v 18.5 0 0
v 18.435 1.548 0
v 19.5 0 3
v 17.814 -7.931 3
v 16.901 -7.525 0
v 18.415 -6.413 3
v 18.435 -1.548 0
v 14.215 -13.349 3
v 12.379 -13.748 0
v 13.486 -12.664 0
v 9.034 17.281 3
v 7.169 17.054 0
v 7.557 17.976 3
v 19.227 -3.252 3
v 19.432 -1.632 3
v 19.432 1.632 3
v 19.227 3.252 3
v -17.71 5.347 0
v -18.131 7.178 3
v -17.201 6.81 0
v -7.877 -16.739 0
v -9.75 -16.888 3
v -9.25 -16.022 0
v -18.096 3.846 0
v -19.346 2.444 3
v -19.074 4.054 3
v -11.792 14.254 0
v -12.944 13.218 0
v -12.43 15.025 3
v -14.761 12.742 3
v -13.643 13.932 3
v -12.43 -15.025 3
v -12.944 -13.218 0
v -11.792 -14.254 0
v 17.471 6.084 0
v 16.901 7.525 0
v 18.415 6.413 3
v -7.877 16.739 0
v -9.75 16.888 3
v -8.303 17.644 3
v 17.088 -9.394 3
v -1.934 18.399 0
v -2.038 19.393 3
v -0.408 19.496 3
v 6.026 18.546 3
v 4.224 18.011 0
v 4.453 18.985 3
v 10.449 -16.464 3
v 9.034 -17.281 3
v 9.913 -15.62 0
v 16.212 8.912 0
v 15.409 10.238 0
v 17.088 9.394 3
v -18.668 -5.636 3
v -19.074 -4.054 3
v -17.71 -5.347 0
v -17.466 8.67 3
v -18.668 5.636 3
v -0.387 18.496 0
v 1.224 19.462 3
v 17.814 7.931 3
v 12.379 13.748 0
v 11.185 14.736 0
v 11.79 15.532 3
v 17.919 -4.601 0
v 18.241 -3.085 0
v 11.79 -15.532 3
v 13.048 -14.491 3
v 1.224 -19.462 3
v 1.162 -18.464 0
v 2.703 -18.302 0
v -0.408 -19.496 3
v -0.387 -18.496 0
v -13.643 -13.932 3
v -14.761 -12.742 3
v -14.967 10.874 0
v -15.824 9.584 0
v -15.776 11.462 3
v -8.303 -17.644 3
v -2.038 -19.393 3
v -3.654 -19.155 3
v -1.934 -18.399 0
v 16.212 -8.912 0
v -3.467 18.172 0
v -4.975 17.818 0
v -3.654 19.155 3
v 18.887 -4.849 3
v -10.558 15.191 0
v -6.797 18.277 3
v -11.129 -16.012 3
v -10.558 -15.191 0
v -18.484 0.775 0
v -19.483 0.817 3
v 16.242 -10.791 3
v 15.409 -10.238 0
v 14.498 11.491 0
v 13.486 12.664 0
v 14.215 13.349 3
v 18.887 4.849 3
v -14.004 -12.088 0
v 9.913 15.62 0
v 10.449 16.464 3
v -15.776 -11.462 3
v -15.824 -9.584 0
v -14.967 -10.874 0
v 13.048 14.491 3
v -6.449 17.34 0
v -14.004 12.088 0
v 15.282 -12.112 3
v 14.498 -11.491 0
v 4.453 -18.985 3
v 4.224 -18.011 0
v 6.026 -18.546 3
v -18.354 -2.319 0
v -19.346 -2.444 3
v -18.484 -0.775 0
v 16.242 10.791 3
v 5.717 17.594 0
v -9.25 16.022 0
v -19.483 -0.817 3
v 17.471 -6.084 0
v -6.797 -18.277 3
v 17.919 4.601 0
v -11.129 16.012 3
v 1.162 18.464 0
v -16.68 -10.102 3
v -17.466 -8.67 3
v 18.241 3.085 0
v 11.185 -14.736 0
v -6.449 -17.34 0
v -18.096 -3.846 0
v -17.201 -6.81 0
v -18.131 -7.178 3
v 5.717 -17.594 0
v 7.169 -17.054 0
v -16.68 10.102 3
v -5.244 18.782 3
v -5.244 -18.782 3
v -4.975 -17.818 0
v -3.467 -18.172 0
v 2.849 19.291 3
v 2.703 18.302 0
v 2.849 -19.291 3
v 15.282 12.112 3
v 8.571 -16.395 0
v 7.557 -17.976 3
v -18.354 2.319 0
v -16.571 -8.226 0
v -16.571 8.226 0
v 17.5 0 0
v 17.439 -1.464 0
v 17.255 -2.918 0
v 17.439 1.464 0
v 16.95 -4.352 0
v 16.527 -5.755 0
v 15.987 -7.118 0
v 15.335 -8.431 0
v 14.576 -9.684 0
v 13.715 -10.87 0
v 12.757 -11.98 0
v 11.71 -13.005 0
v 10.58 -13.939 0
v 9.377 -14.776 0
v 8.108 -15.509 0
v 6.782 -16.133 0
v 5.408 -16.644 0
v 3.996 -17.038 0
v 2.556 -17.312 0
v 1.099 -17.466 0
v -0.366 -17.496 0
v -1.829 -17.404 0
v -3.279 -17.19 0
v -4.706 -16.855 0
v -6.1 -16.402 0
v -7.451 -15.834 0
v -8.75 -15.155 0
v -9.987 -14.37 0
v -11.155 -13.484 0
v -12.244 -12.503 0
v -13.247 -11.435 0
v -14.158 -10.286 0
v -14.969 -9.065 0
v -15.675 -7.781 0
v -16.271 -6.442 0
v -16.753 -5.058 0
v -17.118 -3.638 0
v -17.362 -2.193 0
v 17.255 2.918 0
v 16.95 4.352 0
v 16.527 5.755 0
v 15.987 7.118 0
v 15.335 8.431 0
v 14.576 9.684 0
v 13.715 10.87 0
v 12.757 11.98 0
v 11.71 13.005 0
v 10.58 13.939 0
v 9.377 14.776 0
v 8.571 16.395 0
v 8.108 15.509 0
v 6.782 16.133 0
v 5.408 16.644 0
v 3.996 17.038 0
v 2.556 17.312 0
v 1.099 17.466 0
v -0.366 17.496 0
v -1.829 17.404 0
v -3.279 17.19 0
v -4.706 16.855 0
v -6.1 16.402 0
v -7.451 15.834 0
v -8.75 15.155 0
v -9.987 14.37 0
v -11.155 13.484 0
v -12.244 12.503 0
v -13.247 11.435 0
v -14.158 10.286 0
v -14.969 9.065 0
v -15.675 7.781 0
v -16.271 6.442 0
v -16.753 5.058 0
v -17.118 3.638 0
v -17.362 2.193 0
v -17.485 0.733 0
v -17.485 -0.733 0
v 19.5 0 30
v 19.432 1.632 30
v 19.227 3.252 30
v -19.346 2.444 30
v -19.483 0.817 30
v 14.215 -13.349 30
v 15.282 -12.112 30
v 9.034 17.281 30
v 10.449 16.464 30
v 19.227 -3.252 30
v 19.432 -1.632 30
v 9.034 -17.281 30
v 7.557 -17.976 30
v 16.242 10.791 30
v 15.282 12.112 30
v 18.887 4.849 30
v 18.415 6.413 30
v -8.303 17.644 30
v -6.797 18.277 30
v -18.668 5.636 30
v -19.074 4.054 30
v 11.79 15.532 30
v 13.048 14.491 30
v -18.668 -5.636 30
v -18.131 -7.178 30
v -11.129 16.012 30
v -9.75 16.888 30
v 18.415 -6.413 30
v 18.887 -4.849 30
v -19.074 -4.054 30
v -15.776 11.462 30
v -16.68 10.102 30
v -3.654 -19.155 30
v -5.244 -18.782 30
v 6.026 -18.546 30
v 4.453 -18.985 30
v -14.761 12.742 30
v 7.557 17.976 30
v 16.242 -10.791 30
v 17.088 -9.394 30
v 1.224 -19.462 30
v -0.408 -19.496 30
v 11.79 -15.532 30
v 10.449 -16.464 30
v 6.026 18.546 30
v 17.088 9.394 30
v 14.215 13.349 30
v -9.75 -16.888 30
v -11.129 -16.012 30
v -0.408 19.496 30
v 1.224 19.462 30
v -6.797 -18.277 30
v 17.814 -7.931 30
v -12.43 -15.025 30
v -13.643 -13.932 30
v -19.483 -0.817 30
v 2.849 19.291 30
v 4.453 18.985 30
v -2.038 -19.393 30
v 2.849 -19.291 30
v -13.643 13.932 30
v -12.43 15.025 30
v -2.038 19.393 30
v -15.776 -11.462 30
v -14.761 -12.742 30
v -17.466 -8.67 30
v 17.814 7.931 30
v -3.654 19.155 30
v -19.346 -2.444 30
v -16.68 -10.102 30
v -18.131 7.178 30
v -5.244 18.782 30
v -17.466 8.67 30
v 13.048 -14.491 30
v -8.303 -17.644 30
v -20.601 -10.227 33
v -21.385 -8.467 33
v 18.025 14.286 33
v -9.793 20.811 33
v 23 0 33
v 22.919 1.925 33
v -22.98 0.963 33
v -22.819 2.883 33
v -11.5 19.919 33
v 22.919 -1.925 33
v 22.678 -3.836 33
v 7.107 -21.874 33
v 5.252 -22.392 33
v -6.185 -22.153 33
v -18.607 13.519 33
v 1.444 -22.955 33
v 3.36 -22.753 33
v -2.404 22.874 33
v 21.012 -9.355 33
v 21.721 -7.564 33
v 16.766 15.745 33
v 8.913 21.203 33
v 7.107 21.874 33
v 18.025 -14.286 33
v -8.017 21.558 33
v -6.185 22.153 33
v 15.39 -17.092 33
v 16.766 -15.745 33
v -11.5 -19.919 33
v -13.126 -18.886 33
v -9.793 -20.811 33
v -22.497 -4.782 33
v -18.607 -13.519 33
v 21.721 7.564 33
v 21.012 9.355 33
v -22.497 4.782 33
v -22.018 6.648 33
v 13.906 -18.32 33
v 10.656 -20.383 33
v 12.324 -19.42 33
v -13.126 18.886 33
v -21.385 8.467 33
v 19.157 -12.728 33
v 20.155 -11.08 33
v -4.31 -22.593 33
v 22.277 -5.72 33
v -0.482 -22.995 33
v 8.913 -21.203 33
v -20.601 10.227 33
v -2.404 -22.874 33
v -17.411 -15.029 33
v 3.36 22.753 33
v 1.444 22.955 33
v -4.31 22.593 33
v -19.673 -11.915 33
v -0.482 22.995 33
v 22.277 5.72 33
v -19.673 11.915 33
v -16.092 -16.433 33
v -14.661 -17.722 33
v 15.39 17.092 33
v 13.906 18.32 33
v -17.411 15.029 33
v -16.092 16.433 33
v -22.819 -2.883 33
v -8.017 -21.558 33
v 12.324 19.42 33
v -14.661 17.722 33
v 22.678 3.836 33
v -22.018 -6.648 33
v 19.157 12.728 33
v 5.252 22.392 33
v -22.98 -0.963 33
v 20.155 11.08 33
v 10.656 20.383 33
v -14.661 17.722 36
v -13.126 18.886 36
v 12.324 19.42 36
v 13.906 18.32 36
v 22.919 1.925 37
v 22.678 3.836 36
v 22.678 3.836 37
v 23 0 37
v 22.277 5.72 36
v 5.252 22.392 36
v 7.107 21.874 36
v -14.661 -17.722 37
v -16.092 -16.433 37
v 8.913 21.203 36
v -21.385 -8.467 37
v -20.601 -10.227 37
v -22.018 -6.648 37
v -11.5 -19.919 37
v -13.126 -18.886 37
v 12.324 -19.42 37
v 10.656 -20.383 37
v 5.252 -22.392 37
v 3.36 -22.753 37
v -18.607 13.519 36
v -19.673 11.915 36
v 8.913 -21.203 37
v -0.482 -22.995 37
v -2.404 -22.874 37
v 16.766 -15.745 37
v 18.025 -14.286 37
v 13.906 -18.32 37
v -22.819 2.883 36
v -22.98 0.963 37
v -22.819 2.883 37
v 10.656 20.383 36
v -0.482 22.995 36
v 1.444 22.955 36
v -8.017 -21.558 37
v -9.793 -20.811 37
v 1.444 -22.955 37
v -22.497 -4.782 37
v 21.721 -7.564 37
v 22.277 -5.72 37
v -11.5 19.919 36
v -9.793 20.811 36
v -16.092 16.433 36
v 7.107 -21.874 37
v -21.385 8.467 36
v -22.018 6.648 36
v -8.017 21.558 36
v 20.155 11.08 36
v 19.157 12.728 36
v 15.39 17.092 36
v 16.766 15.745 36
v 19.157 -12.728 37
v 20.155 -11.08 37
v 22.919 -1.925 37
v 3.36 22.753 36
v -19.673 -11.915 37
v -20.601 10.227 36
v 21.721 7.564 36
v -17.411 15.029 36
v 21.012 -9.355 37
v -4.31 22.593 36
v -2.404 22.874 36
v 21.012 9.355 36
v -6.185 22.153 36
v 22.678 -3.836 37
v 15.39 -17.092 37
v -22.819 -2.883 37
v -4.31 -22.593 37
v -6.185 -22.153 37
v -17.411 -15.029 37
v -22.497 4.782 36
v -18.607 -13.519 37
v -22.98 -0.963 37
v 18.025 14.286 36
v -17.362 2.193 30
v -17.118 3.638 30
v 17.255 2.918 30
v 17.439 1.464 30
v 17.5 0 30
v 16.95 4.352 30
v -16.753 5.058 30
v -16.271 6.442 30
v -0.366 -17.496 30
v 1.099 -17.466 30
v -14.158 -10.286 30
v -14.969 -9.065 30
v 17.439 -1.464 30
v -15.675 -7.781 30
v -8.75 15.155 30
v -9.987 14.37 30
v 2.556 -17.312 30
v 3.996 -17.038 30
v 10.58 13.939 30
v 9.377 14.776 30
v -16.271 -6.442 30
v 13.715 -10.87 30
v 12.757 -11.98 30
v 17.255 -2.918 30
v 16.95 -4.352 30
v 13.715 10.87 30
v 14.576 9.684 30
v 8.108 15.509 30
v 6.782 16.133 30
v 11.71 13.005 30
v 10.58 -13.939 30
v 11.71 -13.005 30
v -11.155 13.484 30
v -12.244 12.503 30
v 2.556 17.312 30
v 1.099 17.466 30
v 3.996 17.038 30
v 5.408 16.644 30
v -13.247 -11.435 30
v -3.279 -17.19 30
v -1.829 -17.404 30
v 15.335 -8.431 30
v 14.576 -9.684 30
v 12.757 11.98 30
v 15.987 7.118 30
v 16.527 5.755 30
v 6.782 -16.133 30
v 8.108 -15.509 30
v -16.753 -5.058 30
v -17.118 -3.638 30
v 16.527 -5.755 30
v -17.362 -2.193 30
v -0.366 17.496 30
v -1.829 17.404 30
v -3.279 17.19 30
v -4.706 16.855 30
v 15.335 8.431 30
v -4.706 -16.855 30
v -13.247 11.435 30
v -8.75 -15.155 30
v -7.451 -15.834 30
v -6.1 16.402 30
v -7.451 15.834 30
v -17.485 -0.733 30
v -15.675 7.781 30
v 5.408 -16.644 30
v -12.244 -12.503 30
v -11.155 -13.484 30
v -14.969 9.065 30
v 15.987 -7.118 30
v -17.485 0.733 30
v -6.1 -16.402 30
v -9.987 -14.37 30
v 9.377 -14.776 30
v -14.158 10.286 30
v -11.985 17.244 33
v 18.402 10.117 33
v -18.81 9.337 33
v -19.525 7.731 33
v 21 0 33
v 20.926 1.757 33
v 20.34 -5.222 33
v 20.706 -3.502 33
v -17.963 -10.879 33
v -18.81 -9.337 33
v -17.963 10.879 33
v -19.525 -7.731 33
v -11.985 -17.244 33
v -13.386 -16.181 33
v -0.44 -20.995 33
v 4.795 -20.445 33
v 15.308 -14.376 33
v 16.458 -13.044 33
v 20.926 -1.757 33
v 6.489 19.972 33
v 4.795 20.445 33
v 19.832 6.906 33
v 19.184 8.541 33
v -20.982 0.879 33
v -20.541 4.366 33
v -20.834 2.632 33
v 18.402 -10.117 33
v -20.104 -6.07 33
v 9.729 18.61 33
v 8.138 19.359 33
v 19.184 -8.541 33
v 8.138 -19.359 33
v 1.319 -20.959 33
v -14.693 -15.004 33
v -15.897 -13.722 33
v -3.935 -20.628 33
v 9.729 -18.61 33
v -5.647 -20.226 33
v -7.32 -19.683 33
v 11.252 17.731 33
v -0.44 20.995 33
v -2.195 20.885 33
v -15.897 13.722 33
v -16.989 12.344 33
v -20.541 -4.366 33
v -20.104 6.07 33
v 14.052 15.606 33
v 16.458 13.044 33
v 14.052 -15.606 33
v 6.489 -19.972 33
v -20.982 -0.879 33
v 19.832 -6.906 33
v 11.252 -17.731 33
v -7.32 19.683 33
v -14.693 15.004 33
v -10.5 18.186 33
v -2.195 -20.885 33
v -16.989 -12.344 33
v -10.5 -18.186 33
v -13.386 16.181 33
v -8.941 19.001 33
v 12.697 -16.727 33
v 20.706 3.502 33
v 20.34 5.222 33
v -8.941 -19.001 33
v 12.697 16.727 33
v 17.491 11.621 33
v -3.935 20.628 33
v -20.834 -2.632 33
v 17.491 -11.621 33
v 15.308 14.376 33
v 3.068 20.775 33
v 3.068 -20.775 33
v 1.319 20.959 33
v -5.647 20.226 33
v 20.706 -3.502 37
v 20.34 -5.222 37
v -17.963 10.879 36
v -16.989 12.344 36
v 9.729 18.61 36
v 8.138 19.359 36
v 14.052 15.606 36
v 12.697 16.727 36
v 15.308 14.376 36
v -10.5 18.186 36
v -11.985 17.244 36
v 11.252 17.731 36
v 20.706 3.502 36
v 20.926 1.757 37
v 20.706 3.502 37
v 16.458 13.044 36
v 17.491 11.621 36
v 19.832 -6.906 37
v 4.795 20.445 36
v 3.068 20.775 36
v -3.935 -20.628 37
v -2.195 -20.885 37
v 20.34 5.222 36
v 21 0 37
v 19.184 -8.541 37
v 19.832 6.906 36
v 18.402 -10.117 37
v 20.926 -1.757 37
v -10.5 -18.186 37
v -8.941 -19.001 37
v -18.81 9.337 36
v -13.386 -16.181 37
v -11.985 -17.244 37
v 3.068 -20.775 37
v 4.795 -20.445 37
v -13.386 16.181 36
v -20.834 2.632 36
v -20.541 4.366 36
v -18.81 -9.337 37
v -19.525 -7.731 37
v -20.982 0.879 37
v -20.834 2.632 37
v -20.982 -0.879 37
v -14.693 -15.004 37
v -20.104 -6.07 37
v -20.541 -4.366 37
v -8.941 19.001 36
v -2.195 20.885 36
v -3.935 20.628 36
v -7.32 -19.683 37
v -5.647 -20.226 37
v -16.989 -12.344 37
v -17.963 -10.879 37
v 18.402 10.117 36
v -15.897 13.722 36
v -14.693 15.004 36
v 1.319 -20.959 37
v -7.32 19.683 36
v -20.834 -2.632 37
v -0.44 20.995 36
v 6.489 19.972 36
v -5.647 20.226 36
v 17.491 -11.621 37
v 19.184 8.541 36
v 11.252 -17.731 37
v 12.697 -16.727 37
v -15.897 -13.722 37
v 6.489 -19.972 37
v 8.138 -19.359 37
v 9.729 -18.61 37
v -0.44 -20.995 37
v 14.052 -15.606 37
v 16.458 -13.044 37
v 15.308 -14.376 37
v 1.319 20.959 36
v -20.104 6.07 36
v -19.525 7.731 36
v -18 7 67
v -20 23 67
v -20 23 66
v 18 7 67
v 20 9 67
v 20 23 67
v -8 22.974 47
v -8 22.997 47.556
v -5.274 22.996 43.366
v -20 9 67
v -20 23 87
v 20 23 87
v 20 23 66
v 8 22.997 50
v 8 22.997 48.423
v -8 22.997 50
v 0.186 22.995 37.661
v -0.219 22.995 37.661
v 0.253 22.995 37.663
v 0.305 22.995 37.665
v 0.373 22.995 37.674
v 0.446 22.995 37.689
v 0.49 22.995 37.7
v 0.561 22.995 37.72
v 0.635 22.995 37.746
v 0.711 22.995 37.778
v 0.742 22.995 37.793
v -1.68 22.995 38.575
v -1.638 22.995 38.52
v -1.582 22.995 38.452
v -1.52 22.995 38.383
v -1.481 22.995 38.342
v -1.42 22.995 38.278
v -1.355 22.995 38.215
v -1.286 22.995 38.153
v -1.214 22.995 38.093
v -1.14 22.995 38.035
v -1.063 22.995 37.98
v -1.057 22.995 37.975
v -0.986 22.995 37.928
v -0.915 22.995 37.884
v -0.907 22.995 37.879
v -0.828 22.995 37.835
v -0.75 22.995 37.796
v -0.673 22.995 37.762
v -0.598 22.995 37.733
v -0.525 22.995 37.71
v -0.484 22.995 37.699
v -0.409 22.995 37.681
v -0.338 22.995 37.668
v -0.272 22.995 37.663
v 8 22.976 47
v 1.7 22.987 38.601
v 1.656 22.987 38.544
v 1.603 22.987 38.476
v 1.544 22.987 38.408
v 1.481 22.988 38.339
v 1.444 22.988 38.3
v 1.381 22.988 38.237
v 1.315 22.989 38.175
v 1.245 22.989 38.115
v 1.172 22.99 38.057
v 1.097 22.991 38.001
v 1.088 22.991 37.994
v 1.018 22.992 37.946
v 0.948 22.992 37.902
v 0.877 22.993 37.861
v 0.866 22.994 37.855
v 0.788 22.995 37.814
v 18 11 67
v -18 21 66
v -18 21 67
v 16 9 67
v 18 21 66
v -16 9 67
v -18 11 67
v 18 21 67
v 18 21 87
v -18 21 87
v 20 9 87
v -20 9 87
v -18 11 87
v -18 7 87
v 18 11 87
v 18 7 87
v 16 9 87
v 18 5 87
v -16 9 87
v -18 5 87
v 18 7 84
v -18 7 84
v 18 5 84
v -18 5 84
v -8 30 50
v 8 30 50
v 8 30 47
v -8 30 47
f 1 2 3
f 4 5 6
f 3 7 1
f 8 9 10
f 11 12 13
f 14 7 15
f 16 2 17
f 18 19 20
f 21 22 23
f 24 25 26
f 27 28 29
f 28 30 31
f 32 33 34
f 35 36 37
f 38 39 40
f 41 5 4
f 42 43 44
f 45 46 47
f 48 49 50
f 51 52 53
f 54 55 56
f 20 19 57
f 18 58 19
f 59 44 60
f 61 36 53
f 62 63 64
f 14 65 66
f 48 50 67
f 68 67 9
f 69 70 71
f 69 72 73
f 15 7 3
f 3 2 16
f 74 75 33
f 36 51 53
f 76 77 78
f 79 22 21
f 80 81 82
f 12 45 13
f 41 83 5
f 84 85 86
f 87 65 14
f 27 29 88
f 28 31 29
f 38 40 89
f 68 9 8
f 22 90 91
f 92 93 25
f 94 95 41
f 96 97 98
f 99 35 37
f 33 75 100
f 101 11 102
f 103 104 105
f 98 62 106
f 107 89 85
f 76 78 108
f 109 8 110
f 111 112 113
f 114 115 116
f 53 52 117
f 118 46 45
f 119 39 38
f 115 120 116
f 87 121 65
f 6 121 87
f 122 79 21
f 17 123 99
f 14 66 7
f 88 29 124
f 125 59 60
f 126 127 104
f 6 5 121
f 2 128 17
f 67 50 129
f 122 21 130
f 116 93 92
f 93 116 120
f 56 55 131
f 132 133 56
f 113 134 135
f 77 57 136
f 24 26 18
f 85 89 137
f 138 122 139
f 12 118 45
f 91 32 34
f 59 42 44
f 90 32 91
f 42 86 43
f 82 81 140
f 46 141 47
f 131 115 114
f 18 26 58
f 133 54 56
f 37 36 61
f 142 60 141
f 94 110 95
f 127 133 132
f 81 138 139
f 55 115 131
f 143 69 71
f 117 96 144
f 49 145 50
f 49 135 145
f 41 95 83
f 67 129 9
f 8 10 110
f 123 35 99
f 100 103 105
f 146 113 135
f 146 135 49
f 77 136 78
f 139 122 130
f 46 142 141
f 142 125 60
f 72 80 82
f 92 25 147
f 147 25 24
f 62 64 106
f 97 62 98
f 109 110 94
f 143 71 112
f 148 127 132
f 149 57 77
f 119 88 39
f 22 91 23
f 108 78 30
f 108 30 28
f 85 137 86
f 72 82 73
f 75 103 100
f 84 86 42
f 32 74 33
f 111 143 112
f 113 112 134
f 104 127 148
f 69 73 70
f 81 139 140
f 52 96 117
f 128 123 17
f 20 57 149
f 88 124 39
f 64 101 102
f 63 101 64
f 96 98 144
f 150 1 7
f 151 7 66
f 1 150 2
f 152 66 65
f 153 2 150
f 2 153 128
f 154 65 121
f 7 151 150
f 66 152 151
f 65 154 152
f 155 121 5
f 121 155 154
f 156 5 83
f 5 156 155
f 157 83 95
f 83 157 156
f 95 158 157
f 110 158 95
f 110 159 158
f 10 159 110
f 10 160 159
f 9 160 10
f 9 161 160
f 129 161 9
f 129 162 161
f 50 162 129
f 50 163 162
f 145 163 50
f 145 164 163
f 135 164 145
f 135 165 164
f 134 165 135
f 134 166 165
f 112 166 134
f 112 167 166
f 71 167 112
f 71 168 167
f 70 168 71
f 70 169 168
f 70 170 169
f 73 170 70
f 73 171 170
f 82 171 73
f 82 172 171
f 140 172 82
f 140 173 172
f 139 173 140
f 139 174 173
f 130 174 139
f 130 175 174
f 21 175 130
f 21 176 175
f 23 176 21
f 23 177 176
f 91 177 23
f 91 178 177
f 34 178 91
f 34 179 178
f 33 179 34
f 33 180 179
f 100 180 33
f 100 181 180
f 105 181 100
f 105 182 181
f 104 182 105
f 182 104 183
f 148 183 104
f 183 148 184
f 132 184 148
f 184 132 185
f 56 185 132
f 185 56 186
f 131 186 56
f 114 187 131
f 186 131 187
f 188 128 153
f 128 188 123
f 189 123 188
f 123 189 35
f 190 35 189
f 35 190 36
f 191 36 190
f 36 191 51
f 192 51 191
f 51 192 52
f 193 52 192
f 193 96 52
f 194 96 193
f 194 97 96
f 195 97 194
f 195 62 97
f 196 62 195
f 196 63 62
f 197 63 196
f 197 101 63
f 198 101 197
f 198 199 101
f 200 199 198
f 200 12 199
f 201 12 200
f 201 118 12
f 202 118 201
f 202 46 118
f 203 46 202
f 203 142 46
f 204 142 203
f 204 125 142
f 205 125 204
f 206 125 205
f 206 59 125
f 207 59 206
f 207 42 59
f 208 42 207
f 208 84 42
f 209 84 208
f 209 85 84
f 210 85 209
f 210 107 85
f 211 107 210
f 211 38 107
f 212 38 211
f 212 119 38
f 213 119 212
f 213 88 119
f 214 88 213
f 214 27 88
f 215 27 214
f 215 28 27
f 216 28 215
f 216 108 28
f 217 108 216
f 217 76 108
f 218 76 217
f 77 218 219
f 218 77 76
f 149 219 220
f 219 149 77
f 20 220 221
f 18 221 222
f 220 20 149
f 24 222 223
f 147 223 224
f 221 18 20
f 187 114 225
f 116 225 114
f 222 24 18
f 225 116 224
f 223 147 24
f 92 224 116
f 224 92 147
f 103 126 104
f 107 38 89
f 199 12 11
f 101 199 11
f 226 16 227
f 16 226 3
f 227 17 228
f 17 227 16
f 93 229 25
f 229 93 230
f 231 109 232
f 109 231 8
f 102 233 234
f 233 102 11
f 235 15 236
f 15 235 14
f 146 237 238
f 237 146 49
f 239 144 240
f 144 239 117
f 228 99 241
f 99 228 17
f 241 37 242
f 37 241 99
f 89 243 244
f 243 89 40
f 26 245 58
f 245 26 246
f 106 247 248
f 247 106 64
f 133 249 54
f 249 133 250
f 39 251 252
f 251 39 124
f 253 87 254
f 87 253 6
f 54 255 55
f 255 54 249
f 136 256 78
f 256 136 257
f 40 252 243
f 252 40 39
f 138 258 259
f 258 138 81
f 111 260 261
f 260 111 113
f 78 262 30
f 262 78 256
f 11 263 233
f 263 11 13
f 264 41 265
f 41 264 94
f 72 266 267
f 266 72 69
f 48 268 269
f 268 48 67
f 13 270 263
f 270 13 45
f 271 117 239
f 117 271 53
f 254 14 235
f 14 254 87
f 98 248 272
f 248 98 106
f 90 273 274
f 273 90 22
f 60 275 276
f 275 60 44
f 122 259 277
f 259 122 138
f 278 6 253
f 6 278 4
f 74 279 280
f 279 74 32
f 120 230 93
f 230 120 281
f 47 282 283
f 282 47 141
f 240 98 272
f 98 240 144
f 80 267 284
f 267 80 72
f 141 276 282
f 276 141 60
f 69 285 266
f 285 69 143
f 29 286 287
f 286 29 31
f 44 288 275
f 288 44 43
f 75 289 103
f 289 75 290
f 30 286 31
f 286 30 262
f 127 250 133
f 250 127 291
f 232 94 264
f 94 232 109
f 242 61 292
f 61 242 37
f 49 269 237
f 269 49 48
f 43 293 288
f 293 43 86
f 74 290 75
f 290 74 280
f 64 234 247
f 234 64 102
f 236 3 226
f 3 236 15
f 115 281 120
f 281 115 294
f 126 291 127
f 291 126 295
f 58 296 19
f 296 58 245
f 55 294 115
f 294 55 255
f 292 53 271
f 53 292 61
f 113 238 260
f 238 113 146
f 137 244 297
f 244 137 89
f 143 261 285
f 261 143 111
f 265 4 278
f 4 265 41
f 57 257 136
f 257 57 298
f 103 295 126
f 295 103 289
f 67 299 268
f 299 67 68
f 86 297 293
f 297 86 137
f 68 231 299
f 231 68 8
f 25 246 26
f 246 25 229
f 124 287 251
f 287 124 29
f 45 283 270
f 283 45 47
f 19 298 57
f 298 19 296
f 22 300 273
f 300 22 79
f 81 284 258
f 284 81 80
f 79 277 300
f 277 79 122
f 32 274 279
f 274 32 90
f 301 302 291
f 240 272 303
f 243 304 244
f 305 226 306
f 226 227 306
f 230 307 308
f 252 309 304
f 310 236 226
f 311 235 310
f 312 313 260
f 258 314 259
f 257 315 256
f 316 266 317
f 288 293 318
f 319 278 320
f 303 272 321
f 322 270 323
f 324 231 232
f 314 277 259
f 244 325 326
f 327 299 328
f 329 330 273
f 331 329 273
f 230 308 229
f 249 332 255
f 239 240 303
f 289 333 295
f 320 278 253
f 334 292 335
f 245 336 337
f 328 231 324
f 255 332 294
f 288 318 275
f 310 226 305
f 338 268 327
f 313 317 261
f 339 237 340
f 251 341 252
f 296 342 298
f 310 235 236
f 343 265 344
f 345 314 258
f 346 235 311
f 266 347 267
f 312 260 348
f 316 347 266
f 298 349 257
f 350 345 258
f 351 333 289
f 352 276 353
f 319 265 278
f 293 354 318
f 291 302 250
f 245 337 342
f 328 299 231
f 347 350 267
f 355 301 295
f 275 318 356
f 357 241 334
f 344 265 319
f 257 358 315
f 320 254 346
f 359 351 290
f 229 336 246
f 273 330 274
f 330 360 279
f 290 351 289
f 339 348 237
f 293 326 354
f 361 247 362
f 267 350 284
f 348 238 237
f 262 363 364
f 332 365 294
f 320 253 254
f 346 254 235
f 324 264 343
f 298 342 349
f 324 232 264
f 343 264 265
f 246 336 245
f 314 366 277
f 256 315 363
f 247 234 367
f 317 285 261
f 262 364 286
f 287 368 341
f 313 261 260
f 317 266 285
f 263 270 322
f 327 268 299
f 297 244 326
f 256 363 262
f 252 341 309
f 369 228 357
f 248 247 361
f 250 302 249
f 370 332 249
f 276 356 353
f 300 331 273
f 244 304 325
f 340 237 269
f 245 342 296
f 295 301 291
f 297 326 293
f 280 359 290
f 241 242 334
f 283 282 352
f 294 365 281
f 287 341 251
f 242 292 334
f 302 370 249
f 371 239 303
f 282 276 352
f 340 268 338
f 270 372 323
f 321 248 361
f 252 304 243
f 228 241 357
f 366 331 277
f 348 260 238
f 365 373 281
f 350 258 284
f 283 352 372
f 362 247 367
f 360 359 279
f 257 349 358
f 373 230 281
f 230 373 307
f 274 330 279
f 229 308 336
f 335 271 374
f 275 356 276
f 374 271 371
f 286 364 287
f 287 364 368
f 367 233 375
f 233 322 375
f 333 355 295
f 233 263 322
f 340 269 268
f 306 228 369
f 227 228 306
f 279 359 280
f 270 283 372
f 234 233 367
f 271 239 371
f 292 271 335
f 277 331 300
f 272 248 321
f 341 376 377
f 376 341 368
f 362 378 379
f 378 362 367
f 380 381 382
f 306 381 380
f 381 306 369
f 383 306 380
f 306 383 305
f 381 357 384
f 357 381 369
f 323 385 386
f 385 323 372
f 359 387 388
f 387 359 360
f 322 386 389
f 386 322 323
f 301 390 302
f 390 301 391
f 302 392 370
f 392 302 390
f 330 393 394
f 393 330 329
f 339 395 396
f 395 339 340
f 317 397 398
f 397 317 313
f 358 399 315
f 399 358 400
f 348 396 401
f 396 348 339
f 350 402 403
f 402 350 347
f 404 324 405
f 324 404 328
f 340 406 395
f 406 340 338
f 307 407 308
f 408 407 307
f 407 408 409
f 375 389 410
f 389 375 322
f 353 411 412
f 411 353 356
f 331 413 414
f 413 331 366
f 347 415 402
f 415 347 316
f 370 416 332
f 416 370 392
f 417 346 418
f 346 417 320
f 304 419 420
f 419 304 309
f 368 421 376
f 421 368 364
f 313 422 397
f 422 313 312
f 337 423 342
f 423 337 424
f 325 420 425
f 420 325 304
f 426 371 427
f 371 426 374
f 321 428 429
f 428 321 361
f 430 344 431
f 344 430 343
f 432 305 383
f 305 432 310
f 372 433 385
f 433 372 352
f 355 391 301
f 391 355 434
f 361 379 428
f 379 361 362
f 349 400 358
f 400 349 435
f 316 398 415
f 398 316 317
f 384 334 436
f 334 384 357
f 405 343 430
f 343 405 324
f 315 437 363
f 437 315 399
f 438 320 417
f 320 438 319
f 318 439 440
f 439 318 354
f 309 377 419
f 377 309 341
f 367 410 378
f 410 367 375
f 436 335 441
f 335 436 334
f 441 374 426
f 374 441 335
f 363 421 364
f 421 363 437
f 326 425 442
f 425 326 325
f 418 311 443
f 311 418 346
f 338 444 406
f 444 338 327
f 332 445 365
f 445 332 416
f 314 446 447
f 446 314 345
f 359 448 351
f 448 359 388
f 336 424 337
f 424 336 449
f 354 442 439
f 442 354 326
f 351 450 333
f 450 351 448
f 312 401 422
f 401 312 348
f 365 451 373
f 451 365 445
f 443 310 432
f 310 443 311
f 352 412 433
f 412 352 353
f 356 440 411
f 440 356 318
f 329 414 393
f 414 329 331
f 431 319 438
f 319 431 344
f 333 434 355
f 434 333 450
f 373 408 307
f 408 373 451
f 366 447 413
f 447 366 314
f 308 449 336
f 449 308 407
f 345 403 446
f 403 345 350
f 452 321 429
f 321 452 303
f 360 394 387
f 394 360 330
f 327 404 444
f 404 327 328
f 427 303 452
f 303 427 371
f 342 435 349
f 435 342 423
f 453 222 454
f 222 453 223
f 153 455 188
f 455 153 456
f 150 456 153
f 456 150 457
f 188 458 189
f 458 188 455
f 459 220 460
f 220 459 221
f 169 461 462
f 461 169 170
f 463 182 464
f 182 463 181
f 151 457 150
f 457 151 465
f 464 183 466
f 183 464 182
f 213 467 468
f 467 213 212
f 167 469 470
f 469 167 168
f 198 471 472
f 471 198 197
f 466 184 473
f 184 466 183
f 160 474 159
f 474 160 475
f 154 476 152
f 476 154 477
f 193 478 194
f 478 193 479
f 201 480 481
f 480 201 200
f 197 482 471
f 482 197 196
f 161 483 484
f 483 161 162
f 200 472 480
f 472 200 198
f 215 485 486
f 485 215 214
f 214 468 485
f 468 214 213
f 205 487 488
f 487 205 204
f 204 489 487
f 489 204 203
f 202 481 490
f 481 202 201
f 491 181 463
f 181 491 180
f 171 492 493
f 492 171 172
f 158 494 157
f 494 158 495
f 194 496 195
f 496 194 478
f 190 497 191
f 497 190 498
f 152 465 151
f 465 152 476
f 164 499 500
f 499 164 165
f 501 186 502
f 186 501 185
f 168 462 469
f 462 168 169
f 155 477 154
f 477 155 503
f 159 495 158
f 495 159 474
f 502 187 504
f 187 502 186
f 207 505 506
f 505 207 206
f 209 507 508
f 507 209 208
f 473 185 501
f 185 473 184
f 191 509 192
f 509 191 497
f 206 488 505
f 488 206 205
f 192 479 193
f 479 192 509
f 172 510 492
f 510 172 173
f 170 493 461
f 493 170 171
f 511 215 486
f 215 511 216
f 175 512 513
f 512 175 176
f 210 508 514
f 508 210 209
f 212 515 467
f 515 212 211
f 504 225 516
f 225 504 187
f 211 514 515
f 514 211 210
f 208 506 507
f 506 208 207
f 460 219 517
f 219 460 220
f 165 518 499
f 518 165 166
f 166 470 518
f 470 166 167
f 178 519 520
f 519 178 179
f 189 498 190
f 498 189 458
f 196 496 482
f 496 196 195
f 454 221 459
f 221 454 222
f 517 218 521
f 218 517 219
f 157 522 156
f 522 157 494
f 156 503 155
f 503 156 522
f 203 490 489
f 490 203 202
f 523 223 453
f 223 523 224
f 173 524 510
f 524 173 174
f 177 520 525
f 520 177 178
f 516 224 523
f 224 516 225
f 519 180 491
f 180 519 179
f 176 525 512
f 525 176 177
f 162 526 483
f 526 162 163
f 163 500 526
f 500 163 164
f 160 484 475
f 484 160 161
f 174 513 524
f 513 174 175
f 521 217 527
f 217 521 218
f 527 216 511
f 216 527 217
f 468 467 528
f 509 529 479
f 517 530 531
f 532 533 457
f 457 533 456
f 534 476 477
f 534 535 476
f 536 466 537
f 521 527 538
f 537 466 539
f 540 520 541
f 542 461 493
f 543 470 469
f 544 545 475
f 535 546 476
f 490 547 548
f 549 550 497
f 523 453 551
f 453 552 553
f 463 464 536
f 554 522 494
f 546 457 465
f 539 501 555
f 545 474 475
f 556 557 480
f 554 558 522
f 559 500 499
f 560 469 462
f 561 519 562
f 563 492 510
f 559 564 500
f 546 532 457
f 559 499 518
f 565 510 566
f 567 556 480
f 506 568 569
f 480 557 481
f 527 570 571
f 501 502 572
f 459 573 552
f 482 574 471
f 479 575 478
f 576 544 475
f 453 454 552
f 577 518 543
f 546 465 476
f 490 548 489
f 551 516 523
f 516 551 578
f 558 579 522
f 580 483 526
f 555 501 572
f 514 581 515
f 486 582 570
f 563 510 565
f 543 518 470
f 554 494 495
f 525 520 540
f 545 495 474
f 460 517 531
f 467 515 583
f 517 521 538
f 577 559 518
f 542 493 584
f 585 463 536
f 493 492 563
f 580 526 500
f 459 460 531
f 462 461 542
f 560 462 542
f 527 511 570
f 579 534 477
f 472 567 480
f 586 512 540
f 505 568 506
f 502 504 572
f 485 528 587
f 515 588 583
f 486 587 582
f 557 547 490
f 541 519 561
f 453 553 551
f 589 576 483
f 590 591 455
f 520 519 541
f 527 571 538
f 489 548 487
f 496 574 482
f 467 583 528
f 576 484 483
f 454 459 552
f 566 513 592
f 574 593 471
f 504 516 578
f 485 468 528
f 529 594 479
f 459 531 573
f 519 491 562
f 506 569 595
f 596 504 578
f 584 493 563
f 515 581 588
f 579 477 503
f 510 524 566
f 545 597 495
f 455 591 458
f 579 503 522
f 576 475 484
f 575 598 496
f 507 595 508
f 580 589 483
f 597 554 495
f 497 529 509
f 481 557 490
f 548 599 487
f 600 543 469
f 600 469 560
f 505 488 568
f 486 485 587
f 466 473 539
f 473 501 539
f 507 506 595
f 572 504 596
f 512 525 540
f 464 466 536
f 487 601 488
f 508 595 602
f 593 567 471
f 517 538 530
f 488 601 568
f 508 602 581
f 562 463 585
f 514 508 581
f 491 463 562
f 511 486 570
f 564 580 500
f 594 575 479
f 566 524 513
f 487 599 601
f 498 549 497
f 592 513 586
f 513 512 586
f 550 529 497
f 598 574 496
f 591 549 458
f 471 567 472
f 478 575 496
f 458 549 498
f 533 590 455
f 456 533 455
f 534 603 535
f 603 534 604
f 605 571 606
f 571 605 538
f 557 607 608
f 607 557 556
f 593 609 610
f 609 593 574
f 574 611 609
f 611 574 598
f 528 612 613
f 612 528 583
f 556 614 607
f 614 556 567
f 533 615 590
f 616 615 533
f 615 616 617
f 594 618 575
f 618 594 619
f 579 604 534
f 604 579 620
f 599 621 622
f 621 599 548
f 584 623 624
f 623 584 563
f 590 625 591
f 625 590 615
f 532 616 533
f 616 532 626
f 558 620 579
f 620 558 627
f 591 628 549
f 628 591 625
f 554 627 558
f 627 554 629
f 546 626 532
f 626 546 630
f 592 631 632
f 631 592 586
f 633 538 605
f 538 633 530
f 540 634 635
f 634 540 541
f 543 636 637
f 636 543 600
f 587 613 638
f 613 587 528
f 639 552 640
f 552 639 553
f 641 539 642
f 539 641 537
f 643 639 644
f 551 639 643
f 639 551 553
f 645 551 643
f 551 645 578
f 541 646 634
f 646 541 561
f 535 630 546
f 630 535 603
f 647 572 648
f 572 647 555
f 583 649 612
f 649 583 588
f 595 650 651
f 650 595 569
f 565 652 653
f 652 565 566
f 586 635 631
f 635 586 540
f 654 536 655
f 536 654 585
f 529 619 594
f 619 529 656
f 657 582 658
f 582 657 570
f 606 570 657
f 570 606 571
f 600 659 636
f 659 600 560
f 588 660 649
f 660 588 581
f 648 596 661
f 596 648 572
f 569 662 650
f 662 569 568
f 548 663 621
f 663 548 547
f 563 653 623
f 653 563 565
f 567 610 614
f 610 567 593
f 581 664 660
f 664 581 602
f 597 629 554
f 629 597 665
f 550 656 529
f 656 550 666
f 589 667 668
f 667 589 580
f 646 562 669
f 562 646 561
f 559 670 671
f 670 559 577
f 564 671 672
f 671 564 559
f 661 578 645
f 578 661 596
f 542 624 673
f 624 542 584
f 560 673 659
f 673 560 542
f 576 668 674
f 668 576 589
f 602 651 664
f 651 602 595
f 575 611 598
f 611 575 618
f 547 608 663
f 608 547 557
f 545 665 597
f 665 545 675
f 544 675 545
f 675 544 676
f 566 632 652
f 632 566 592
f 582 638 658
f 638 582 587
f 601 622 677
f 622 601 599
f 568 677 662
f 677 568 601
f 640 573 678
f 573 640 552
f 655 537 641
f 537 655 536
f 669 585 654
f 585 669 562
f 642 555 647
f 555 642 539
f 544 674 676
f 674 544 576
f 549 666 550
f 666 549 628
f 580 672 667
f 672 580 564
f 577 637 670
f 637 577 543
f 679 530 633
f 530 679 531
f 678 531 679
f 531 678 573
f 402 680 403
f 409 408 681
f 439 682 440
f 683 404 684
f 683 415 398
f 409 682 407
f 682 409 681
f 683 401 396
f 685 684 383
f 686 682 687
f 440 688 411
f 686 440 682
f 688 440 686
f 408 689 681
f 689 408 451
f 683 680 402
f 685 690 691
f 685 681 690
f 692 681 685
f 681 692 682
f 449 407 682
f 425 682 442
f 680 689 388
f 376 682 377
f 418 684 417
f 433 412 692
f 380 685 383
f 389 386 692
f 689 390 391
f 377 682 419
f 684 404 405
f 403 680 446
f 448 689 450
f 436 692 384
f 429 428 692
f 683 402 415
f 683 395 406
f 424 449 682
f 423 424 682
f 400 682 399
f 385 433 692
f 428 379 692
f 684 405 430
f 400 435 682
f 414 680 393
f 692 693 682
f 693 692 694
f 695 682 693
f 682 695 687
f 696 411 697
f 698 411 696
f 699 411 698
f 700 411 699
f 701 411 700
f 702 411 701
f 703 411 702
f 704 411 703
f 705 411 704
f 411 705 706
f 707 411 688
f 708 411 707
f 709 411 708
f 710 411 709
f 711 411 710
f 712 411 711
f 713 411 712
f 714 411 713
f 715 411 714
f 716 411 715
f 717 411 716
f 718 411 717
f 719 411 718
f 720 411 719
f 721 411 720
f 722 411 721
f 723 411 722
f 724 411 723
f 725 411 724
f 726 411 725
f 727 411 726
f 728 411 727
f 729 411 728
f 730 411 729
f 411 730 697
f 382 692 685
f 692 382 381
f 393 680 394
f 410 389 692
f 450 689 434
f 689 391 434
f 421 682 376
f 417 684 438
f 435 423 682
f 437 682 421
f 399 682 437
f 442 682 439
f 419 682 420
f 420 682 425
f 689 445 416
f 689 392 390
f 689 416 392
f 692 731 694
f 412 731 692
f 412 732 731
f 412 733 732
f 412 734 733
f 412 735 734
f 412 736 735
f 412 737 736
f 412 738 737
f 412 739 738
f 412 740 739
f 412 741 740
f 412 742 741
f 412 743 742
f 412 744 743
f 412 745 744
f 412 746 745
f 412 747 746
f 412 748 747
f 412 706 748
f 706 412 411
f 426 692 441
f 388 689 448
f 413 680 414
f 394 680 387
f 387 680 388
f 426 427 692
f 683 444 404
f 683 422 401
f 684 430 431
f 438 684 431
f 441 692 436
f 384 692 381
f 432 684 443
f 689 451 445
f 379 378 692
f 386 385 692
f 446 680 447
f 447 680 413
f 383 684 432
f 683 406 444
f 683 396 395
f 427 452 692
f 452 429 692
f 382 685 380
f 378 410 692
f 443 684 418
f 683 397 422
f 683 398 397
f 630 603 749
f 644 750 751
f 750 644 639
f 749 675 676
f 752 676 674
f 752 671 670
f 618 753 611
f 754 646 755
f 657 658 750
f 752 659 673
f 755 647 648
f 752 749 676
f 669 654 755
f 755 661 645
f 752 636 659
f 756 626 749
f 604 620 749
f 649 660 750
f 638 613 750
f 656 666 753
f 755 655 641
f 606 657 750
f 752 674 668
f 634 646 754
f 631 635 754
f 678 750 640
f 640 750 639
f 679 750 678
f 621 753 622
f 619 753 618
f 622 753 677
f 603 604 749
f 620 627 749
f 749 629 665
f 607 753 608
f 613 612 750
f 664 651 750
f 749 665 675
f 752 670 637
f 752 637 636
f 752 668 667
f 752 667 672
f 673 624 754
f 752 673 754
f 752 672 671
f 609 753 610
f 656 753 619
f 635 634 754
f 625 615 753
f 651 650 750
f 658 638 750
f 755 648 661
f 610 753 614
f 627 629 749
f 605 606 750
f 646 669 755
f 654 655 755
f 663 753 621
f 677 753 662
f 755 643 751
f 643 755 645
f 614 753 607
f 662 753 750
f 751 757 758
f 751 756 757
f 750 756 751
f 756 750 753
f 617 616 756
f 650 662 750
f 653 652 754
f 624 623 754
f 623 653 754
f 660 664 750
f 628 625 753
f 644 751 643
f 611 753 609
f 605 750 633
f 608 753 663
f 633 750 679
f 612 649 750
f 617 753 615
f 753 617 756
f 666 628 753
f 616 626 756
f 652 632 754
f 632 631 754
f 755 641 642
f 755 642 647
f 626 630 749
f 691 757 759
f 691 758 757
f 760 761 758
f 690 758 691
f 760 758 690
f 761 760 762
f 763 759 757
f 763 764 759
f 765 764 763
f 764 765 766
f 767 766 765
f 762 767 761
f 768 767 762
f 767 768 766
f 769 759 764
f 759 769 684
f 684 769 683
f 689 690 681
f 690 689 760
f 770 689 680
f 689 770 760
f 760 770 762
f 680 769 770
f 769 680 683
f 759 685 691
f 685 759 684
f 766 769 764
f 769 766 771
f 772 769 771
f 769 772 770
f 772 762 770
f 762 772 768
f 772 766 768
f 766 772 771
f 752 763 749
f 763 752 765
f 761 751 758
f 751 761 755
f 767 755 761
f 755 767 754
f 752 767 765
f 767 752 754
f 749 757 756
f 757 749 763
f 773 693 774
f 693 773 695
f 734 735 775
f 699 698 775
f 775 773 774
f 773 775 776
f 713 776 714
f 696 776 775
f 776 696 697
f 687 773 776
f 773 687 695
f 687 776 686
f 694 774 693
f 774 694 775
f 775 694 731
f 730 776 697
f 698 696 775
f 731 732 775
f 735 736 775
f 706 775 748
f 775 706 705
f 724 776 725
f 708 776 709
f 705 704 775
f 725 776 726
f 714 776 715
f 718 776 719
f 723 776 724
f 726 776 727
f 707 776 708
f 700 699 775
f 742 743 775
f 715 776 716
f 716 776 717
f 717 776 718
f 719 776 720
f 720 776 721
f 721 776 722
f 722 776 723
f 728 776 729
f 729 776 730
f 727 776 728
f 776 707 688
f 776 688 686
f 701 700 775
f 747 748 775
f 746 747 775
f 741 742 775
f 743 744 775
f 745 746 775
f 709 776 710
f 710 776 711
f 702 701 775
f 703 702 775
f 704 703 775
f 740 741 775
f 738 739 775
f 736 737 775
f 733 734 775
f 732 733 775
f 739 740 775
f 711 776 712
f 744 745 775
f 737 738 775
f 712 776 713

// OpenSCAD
/* ClipperToHose.scad
 *
 * Clipper to Hose Adapter
 * Adapt between flexible hose and hair clipper
 */

$fn=75;

HOSE_ID=39;
HOSE_LEN=30;
HOSE_THICKNESS=2;
COLLAR_OD=(HOSE_ID+7);
COLLAR_LEN=6;
COLLAR_THICKNESS=2;
PORT_W=40;
PORT_H=16;
PORT_L=30;
PORT_THICKNESS=2;
SUPPORT_W=28;
SUPPORT_H=6;
SUPPORT_L=40;

RIDGE=5;

BRIDGE=7;

module hose_end(length=HOSE_LEN, dia=HOSE_ID) {
    difference() {
        union() {
            cylinder(h=3, d1=dia-2, d2=dia);
            translate([0,0,3]) cylinder(h=length-3, d=dia);
            translate([0,0,length]) cylinder(h=(COLLAR_LEN/2), d1=dia, d2=COLLAR_OD);
            translate([0,0,length+(COLLAR_LEN/2)]) cylinder(h=(COLLAR_LEN/2), d=COLLAR_OD);
        }
        union() {
            cylinder(h=(length), d=(dia-(HOSE_THICKNESS*2)));
            translate([0,0,length]) cylinder(h=(COLLAR_LEN/2), d1=(dia-(HOSE_THICKNESS*2)), d2=(COLLAR_OD-(HOSE_THICKNESS*2)));
            translate([0,0,length+(COLLAR_LEN/2)]) cylinder(h=(COLLAR_LEN/2), d=COLLAR_OD-(HOSE_THICKNESS*2));
        }
    }
}

module nozzle_outline(w=PORT_W, h=PORT_H) {
    polygon(points=[[0,2], [2,0], [w-2,0], [w,2], [w, h], [0,h]]);
}

module nozzle(w=PORT_W, h=PORT_H) {
    difference() {
        union() {
            linear_extrude(height=20) {
                nozzle_outline(w=w, h=h);
            }
            translate([2,-2,17]) cube([w-4,2,3]);
        }
        linear_extrude(height=20) {
            translate([2,2]) nozzle_outline(w=w-4, h=h-4);
        }
    }
}

module nozzle_interface(w=PORT_W, h=PORT_H) {
    difference() {
        linear_extrude(height=1) {
            nozzle_outline(w=w,h=h);
        }
        linear_extrude(height=1) {
            translate([2,2]) nozzle_outline(w=w-4, h=h-4);
        }
    }
}

module interface() {
    TOTAL_HEIGHT=31+20;
    BUMP_CENTER=TOTAL_HEIGHT-40;
    difference() {
        hull() {
            cylinder(h=1,d=COLLAR_OD);
            translate([-(PORT_W/2),(COLLAR_OD/2)-PORT_H,30])
            {
                nozzle_interface(w=PORT_W,h=PORT_H);
            }
        }
        hull() {
            cylinder(h=1,d=COLLAR_OD-(HOSE_THICKNESS*2));
            translate([-((PORT_W/2)-PORT_THICKNESS),(COLLAR_OD/2)-(PORT_H-PORT_THICKNESS),30]) {
                // cube([PORT_W-(2*PORT_THICKNESS),PORT_H-(2*PORT_THICKNESS),PORT_L]);
                nozzle_interface(w=PORT_W-(2*PORT_THICKNESS),h=PORT_H-(2*PORT_THICKNESS));
            }
        }
    }
    translate([-(PORT_W/2),(COLLAR_OD/2)-PORT_H,31]) nozzle(w=PORT_W, h=PORT_H);
    hull() {
        translate([-8,(COLLAR_OD/2)-1,BUMP_CENTER]) cube([16,8,3]);
        translate([0,(COLLAR_OD/2)-1,2]) sphere(r=1);
    }
}

module support(angle=26.5) {
    difference() {
        translate([-(SUPPORT_W/2),(COLLAR_OD)-SUPPORT_H,0]) rotate([angle,0,0]) cube([SUPPORT_W, SUPPORT_H, SUPPORT_L]);
        translate([0,0,-100]) cube([200,200,200], center=true);
    }
}


module adapter() {
    union() {
        hose_end();
        translate([0,0,HOSE_LEN+COLLAR_LEN]) interface();
    }
}

adapter();
// #support();
// hose_end();
// interface();
// nozzle_interface();
